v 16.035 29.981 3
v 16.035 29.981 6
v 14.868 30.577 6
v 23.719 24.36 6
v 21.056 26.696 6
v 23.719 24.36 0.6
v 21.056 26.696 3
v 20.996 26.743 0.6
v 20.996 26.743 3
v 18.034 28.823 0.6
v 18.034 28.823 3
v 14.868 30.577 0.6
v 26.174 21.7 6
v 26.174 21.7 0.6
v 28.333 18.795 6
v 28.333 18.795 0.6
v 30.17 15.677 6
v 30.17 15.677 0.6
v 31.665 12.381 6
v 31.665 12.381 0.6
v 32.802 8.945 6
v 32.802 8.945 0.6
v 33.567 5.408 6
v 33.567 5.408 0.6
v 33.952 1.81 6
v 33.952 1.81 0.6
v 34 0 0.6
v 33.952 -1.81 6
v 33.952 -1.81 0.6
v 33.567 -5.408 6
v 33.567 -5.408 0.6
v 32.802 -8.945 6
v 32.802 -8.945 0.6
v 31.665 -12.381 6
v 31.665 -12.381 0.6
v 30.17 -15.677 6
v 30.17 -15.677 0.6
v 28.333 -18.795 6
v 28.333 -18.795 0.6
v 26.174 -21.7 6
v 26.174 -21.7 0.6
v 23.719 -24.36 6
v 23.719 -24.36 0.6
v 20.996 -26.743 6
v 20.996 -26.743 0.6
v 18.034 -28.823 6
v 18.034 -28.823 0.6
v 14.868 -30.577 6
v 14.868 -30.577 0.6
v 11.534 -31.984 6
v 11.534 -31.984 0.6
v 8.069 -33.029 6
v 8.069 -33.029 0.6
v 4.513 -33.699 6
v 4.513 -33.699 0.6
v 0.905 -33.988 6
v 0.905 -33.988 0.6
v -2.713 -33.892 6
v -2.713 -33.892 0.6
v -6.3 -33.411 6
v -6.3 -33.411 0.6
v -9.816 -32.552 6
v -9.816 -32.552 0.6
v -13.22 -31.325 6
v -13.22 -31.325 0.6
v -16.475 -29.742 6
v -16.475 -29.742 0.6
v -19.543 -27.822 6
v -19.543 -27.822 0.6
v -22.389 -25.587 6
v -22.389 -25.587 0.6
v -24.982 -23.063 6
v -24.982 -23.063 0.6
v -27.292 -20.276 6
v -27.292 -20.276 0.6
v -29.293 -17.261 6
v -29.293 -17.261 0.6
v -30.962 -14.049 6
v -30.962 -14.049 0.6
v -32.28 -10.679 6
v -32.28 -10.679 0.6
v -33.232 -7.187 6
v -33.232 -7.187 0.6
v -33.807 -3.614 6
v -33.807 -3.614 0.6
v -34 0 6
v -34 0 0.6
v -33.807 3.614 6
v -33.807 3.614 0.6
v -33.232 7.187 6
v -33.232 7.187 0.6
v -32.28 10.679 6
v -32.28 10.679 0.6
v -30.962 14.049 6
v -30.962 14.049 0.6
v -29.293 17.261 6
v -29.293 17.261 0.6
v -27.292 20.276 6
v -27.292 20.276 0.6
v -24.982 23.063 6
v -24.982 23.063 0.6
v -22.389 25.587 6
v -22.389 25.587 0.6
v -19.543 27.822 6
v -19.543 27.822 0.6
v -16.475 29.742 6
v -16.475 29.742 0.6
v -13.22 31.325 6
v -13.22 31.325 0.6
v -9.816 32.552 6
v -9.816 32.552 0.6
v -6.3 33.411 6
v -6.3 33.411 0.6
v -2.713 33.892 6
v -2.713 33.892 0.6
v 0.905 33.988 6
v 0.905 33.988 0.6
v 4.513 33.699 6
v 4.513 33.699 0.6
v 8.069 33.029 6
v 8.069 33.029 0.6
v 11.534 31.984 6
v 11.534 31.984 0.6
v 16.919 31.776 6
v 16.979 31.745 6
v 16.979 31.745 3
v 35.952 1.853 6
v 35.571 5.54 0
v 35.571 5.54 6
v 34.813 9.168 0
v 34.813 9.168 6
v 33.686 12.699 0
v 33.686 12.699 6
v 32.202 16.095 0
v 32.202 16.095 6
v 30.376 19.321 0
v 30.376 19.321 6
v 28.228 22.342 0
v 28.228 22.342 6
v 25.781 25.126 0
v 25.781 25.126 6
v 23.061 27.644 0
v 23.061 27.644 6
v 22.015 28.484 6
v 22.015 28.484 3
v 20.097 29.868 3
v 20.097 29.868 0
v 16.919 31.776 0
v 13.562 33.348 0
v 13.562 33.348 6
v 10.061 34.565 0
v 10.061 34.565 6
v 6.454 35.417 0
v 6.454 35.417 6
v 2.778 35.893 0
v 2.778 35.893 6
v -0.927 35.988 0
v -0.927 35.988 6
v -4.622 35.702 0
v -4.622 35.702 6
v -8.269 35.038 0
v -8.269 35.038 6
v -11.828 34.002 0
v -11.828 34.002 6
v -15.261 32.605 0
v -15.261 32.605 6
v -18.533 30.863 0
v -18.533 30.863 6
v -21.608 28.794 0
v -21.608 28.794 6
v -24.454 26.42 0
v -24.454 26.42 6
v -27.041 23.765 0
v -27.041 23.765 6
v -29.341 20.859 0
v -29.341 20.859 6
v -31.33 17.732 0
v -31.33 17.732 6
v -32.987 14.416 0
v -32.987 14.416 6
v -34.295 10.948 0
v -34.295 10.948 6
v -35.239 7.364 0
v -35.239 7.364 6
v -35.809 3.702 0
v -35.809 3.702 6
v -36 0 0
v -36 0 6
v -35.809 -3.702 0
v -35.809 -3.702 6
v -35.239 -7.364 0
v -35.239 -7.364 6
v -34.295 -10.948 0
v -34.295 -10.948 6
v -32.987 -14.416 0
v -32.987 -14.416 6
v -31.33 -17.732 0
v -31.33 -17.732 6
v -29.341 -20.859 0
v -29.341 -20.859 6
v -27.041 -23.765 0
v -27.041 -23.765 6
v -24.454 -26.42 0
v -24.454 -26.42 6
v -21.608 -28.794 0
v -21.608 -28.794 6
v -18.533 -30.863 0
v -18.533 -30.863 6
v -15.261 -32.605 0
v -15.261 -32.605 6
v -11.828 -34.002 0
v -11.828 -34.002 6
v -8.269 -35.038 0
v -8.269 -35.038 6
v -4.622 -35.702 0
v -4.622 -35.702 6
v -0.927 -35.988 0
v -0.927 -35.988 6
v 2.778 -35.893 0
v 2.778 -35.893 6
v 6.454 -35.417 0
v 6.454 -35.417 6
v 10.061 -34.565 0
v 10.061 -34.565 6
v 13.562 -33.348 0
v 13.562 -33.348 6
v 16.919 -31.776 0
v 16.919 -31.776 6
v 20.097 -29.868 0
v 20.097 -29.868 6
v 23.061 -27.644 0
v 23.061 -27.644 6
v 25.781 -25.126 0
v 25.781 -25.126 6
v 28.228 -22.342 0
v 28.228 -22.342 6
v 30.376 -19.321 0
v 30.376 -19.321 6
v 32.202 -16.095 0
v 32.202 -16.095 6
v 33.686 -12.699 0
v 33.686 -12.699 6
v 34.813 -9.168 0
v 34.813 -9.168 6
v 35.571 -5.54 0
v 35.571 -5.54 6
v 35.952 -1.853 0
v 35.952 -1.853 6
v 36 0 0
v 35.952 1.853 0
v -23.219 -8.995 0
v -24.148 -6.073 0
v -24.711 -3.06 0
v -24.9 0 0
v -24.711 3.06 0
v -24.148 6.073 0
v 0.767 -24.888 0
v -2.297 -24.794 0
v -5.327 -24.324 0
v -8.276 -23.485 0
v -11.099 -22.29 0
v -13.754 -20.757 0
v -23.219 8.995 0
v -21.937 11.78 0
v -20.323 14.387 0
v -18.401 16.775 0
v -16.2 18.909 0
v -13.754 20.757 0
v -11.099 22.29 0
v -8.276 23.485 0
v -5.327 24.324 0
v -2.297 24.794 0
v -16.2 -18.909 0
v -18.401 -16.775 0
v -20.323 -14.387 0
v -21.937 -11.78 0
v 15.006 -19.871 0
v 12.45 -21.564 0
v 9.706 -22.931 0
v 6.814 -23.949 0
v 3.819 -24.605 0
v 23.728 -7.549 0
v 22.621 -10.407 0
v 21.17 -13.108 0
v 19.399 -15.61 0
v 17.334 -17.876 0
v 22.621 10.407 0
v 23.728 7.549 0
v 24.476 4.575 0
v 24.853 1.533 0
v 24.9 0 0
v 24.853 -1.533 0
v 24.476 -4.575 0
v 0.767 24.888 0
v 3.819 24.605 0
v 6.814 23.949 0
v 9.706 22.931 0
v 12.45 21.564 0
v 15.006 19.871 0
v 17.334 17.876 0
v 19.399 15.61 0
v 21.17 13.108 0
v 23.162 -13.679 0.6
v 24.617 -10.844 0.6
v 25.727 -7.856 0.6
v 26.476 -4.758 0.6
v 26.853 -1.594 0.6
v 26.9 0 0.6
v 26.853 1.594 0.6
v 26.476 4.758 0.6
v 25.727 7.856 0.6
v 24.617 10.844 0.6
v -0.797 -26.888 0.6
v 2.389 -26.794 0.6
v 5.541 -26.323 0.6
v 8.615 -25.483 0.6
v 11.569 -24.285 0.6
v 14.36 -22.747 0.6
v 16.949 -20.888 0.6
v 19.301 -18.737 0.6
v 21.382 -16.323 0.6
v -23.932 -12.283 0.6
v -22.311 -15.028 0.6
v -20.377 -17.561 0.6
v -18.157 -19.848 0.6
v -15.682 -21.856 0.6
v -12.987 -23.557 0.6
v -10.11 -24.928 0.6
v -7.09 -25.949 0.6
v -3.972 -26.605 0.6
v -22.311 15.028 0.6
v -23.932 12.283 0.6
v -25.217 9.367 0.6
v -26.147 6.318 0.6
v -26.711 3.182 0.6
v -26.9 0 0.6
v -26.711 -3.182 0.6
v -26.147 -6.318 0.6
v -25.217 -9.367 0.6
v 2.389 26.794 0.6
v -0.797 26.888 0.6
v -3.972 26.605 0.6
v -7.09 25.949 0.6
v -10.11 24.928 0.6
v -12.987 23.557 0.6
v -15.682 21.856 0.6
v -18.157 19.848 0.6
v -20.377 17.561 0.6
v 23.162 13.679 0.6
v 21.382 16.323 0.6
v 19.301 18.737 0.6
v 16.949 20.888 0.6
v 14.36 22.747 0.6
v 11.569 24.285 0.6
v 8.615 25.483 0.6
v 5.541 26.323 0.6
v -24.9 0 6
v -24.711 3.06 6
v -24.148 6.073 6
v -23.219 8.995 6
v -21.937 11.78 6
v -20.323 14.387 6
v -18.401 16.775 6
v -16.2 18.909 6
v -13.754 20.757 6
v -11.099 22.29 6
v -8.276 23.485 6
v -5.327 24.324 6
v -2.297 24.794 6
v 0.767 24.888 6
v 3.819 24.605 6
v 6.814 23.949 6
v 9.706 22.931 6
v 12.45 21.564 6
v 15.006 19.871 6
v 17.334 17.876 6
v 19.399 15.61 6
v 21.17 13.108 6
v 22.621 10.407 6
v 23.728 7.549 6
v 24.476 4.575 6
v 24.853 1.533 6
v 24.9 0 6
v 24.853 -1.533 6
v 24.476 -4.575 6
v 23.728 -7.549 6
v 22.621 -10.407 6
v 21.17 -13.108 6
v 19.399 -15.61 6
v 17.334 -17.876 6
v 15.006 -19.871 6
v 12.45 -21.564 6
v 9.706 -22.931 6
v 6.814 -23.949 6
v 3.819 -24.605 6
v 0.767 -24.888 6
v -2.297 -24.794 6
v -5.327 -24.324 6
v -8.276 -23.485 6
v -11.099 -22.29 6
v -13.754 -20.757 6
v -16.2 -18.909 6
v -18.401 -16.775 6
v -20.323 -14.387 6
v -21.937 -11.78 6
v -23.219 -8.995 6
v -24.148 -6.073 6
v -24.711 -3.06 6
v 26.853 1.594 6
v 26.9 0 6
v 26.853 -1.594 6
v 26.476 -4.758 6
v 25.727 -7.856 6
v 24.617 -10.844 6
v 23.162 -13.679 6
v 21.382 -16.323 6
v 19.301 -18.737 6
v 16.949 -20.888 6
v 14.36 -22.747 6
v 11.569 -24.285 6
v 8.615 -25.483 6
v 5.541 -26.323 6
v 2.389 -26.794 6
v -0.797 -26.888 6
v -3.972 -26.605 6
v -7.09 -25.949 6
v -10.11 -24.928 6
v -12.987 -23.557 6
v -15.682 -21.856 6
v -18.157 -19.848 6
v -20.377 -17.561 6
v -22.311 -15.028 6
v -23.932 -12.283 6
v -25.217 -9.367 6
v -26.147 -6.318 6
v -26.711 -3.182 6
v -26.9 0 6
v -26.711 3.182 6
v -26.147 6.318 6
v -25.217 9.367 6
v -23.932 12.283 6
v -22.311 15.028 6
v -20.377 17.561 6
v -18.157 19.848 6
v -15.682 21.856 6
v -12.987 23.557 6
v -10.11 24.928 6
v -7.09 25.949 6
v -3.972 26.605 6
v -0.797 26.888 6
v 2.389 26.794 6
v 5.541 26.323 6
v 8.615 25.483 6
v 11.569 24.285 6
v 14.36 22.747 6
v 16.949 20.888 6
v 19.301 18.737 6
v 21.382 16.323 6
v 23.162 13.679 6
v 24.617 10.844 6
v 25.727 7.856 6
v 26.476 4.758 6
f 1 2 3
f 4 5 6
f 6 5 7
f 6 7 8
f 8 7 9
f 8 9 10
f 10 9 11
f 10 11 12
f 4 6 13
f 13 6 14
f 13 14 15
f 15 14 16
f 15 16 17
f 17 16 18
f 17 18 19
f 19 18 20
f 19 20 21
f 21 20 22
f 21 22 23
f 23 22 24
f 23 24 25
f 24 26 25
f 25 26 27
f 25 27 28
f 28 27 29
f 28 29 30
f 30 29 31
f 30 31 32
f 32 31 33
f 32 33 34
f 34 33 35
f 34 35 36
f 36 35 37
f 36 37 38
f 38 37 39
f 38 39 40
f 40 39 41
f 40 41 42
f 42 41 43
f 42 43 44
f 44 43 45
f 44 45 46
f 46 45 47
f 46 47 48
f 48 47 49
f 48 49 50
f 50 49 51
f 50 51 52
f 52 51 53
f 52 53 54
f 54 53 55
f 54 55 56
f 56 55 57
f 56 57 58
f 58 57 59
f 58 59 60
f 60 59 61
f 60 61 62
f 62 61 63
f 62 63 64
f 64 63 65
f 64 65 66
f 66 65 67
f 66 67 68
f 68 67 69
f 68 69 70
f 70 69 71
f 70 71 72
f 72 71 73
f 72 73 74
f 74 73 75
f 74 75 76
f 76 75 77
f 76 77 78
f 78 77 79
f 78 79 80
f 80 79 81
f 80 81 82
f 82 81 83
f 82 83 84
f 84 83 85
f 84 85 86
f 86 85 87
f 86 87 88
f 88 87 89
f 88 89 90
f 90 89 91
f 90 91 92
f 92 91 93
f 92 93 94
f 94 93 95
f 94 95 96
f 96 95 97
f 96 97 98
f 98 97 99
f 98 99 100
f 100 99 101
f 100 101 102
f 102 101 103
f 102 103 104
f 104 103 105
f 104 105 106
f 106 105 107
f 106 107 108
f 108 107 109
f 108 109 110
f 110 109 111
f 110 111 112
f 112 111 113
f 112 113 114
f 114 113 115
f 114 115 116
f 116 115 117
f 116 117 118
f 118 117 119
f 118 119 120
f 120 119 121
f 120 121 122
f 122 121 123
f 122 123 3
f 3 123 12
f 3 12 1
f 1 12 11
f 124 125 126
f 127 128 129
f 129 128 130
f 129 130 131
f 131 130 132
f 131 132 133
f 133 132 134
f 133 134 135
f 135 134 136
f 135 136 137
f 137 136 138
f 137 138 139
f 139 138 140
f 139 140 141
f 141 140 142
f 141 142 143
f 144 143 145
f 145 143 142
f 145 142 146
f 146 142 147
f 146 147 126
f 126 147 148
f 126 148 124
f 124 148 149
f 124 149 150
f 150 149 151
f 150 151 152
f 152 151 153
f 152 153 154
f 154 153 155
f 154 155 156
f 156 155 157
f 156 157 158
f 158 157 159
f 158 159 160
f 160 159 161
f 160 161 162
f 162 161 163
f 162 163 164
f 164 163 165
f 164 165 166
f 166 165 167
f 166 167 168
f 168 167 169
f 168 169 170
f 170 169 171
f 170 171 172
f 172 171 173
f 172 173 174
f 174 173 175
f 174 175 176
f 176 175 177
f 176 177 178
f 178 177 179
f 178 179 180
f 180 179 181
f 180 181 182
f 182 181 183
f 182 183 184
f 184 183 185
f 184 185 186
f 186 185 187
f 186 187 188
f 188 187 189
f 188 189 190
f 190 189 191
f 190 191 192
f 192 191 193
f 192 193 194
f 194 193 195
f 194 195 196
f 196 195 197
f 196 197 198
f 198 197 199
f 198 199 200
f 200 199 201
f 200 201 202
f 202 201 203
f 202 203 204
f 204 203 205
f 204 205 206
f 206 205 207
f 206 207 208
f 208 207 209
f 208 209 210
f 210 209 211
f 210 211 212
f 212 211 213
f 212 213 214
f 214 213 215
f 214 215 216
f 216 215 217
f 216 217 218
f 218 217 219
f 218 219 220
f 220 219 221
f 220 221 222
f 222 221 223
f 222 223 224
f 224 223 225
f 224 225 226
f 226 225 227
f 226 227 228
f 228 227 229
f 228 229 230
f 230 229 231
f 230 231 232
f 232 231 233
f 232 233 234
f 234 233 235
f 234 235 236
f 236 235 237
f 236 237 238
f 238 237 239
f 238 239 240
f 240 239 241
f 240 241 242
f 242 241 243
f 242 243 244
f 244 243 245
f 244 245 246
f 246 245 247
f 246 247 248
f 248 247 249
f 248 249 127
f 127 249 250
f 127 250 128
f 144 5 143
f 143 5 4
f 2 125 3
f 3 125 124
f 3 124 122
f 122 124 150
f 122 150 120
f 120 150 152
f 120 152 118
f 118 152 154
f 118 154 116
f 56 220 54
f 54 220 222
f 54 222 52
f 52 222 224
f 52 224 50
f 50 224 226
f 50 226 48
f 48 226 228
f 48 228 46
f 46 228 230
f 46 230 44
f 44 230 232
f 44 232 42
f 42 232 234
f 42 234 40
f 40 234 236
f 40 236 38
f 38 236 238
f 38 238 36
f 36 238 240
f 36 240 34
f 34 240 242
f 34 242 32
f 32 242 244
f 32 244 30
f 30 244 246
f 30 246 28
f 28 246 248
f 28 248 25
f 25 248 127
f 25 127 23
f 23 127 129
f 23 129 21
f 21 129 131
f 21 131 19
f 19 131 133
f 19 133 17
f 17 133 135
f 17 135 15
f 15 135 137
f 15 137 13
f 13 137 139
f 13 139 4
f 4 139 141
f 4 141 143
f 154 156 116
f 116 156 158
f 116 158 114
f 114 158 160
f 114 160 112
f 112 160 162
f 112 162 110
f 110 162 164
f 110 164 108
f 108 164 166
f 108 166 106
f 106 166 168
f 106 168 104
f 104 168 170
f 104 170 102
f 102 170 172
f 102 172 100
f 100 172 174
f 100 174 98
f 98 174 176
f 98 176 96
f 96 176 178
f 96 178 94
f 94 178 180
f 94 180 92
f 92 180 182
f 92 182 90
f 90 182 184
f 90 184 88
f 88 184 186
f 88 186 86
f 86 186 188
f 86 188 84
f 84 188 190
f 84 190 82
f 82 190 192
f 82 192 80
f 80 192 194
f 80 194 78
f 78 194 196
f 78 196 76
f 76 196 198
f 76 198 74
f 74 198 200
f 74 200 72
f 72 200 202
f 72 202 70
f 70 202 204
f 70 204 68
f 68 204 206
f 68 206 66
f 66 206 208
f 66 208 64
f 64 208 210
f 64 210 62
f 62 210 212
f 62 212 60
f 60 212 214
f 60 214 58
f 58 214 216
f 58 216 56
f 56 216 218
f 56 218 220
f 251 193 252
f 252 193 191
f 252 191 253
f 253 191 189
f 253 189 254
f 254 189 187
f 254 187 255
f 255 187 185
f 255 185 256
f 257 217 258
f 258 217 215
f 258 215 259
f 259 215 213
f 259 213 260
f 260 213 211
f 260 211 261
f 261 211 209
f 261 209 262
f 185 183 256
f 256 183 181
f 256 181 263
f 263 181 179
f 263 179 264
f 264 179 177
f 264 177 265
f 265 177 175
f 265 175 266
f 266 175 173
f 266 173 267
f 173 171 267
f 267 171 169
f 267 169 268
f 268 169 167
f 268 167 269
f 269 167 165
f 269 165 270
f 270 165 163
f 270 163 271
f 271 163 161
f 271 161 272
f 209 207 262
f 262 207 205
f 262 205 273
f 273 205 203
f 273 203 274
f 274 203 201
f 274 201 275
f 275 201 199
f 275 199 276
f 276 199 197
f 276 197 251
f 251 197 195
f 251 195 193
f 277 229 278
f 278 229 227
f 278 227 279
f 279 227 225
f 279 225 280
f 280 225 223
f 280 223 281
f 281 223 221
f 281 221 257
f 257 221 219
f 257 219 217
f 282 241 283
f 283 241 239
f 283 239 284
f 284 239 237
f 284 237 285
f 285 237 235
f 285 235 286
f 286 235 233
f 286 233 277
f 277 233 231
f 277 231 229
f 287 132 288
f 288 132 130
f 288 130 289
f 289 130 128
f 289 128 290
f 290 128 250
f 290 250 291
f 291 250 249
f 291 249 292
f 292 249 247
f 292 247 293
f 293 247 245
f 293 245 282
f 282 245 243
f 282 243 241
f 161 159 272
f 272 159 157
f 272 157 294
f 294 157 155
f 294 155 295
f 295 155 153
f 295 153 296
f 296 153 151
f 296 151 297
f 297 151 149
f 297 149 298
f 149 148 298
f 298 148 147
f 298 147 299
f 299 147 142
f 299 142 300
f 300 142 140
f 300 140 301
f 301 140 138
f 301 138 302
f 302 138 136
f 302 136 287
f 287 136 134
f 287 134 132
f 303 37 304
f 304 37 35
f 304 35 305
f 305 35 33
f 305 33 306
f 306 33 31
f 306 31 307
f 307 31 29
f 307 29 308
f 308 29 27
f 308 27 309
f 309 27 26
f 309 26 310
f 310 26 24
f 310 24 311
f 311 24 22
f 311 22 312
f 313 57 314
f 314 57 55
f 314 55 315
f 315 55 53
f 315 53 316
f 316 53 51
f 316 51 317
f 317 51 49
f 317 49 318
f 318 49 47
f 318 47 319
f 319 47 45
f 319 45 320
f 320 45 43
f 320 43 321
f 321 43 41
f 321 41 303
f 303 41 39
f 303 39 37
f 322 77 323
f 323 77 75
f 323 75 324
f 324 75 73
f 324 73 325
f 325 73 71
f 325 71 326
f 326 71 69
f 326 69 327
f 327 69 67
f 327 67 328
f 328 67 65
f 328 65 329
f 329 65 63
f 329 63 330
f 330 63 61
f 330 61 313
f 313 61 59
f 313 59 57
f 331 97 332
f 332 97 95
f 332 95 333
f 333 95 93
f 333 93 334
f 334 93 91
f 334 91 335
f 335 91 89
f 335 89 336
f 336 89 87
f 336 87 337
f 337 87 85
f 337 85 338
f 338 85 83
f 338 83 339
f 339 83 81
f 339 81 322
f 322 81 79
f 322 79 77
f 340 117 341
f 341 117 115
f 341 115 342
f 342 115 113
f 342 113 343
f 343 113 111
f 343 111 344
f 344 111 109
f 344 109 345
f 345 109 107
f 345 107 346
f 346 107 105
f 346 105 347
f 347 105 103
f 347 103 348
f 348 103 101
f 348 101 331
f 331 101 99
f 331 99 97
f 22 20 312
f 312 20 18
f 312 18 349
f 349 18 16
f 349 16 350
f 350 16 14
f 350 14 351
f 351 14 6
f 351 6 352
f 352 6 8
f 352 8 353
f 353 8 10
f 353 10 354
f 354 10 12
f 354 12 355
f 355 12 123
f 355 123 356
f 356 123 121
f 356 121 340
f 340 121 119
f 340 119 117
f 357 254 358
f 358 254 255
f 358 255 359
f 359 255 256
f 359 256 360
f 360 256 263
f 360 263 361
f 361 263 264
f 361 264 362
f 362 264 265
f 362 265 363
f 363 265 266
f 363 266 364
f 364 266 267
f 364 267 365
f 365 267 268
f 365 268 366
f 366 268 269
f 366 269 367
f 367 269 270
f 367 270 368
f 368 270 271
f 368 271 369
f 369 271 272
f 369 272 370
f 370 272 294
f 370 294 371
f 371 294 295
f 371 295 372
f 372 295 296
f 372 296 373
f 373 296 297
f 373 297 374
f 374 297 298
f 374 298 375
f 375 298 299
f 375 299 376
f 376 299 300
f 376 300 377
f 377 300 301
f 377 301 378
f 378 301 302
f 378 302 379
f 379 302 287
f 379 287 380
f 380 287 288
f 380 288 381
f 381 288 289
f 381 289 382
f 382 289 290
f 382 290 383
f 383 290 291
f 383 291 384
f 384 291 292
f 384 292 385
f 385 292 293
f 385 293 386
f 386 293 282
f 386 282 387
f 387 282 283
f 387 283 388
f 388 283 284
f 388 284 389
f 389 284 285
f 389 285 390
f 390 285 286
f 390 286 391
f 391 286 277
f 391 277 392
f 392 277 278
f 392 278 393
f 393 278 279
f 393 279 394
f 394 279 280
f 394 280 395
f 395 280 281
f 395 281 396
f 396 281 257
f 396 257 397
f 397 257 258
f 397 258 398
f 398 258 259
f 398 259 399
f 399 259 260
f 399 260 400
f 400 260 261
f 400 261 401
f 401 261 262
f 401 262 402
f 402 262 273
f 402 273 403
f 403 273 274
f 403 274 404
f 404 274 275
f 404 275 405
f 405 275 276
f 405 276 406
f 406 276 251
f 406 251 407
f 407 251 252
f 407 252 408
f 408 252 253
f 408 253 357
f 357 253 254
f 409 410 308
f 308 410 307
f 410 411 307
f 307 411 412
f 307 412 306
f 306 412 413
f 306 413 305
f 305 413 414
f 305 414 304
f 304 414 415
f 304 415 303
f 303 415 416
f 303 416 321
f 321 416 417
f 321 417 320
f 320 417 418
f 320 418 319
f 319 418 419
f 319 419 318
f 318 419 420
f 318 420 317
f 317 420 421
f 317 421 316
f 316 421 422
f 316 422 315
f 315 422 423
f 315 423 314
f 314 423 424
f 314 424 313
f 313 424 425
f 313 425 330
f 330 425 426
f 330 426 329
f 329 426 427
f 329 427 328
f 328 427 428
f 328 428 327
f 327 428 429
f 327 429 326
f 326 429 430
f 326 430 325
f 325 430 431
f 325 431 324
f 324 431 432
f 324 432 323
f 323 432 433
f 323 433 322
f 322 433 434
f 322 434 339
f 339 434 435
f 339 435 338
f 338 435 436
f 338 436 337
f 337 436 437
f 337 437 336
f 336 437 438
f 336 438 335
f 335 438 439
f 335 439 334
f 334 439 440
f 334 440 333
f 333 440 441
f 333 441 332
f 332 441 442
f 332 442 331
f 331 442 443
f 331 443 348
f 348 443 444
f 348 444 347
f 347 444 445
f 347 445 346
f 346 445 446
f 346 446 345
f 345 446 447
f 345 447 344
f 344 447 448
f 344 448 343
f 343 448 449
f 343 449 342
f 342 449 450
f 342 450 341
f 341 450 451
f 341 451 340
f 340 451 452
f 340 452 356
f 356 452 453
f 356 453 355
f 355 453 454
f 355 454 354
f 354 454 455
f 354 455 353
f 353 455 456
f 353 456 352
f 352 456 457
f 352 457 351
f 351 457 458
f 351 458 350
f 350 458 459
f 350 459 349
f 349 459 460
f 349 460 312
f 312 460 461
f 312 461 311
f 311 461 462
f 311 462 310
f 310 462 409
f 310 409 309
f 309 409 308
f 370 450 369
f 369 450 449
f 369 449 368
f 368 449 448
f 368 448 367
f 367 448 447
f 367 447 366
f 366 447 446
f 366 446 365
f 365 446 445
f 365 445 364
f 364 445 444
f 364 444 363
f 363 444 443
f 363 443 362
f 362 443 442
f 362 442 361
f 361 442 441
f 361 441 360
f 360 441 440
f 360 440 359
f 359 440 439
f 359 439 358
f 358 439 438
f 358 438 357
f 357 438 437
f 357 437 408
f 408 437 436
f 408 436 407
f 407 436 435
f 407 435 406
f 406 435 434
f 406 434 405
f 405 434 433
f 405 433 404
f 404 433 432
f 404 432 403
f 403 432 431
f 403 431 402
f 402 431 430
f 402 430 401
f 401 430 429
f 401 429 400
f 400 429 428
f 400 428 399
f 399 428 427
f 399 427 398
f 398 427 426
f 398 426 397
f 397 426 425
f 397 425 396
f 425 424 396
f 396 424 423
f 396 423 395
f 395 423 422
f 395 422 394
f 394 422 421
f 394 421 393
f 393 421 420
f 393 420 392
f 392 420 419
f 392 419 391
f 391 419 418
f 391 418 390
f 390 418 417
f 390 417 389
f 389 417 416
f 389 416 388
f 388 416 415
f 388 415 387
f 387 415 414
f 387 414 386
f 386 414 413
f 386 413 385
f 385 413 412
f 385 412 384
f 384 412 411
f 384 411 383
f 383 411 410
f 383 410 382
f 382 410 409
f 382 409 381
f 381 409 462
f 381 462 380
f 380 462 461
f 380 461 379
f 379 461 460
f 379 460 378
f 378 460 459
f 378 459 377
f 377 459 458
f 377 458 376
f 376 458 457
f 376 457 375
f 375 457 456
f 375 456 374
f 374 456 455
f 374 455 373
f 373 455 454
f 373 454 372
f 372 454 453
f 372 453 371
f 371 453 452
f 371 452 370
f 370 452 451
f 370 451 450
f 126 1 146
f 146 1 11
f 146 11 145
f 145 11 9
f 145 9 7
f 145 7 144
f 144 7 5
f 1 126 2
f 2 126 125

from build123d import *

# Parameters (mm, degrees)
SKETCH1_R             = 36
SKETCH1_R_2           = 34
BOSS_EXTRUDE1_DEPTH   = 6
SKETCH1_R_3           = 26.9
SKETCH1_R_4           = 24.9
BOSS_EXTRUDE1_2_DEPTH = 6
SKETCH1_3_R           = 34
SKETCH1_3_R_2         = 26.9
BOSS_EXTRUDE2_DEPTH   = 0.6
CUT_EXTRUDE1_DEPTH    = 3


with BuildPart() as part:
    # Sketch1 → Boss-Extrude1 (new body)
    with BuildSketch(Plane.XY):
        Circle(SKETCH1_R)
        Circle(SKETCH1_R_2, mode=Mode.SUBTRACT)
    extrude(amount=BOSS_EXTRUDE1_DEPTH)



with BuildPart() as body_2:
    # Sketch1 → Boss-Extrude1 2 (new body)
    with BuildSketch(Plane.XY):
        Circle(SKETCH1_R_3)
        Circle(SKETCH1_R_4, mode=Mode.SUBTRACT)
    extrude(amount=BOSS_EXTRUDE1_2_DEPTH)


with BuildPart() as part_1:
    add(part.part)

    add(body_2.part)  # Boss-Extrude2 merges body 2
    # Sketch1<3> → Boss-Extrude2 (add)
    with BuildSketch(Plane.XY):
        Circle(SKETCH1_3_R)
        Circle(SKETCH1_3_R_2, mode=Mode.SUBTRACT)
    extrude(amount=BOSS_EXTRUDE2_DEPTH)

    # Sketch4 → Cut-Extrude1 (cut)
    with BuildSketch(Plane.XY.offset(6)):
        Polygon((22.015125438, 28.483929714), (21.055768183, 26.695591888), (17.287744391, 26.985727401), (16.035297847, 29.981147793), (16.978550661, 31.744744722), (21.055768183, 32.257714182), align=None)
    extrude(amount=-CUT_EXTRUDE1_DEPTH, mode=Mode.SUBTRACT)


solid = part_1.part
